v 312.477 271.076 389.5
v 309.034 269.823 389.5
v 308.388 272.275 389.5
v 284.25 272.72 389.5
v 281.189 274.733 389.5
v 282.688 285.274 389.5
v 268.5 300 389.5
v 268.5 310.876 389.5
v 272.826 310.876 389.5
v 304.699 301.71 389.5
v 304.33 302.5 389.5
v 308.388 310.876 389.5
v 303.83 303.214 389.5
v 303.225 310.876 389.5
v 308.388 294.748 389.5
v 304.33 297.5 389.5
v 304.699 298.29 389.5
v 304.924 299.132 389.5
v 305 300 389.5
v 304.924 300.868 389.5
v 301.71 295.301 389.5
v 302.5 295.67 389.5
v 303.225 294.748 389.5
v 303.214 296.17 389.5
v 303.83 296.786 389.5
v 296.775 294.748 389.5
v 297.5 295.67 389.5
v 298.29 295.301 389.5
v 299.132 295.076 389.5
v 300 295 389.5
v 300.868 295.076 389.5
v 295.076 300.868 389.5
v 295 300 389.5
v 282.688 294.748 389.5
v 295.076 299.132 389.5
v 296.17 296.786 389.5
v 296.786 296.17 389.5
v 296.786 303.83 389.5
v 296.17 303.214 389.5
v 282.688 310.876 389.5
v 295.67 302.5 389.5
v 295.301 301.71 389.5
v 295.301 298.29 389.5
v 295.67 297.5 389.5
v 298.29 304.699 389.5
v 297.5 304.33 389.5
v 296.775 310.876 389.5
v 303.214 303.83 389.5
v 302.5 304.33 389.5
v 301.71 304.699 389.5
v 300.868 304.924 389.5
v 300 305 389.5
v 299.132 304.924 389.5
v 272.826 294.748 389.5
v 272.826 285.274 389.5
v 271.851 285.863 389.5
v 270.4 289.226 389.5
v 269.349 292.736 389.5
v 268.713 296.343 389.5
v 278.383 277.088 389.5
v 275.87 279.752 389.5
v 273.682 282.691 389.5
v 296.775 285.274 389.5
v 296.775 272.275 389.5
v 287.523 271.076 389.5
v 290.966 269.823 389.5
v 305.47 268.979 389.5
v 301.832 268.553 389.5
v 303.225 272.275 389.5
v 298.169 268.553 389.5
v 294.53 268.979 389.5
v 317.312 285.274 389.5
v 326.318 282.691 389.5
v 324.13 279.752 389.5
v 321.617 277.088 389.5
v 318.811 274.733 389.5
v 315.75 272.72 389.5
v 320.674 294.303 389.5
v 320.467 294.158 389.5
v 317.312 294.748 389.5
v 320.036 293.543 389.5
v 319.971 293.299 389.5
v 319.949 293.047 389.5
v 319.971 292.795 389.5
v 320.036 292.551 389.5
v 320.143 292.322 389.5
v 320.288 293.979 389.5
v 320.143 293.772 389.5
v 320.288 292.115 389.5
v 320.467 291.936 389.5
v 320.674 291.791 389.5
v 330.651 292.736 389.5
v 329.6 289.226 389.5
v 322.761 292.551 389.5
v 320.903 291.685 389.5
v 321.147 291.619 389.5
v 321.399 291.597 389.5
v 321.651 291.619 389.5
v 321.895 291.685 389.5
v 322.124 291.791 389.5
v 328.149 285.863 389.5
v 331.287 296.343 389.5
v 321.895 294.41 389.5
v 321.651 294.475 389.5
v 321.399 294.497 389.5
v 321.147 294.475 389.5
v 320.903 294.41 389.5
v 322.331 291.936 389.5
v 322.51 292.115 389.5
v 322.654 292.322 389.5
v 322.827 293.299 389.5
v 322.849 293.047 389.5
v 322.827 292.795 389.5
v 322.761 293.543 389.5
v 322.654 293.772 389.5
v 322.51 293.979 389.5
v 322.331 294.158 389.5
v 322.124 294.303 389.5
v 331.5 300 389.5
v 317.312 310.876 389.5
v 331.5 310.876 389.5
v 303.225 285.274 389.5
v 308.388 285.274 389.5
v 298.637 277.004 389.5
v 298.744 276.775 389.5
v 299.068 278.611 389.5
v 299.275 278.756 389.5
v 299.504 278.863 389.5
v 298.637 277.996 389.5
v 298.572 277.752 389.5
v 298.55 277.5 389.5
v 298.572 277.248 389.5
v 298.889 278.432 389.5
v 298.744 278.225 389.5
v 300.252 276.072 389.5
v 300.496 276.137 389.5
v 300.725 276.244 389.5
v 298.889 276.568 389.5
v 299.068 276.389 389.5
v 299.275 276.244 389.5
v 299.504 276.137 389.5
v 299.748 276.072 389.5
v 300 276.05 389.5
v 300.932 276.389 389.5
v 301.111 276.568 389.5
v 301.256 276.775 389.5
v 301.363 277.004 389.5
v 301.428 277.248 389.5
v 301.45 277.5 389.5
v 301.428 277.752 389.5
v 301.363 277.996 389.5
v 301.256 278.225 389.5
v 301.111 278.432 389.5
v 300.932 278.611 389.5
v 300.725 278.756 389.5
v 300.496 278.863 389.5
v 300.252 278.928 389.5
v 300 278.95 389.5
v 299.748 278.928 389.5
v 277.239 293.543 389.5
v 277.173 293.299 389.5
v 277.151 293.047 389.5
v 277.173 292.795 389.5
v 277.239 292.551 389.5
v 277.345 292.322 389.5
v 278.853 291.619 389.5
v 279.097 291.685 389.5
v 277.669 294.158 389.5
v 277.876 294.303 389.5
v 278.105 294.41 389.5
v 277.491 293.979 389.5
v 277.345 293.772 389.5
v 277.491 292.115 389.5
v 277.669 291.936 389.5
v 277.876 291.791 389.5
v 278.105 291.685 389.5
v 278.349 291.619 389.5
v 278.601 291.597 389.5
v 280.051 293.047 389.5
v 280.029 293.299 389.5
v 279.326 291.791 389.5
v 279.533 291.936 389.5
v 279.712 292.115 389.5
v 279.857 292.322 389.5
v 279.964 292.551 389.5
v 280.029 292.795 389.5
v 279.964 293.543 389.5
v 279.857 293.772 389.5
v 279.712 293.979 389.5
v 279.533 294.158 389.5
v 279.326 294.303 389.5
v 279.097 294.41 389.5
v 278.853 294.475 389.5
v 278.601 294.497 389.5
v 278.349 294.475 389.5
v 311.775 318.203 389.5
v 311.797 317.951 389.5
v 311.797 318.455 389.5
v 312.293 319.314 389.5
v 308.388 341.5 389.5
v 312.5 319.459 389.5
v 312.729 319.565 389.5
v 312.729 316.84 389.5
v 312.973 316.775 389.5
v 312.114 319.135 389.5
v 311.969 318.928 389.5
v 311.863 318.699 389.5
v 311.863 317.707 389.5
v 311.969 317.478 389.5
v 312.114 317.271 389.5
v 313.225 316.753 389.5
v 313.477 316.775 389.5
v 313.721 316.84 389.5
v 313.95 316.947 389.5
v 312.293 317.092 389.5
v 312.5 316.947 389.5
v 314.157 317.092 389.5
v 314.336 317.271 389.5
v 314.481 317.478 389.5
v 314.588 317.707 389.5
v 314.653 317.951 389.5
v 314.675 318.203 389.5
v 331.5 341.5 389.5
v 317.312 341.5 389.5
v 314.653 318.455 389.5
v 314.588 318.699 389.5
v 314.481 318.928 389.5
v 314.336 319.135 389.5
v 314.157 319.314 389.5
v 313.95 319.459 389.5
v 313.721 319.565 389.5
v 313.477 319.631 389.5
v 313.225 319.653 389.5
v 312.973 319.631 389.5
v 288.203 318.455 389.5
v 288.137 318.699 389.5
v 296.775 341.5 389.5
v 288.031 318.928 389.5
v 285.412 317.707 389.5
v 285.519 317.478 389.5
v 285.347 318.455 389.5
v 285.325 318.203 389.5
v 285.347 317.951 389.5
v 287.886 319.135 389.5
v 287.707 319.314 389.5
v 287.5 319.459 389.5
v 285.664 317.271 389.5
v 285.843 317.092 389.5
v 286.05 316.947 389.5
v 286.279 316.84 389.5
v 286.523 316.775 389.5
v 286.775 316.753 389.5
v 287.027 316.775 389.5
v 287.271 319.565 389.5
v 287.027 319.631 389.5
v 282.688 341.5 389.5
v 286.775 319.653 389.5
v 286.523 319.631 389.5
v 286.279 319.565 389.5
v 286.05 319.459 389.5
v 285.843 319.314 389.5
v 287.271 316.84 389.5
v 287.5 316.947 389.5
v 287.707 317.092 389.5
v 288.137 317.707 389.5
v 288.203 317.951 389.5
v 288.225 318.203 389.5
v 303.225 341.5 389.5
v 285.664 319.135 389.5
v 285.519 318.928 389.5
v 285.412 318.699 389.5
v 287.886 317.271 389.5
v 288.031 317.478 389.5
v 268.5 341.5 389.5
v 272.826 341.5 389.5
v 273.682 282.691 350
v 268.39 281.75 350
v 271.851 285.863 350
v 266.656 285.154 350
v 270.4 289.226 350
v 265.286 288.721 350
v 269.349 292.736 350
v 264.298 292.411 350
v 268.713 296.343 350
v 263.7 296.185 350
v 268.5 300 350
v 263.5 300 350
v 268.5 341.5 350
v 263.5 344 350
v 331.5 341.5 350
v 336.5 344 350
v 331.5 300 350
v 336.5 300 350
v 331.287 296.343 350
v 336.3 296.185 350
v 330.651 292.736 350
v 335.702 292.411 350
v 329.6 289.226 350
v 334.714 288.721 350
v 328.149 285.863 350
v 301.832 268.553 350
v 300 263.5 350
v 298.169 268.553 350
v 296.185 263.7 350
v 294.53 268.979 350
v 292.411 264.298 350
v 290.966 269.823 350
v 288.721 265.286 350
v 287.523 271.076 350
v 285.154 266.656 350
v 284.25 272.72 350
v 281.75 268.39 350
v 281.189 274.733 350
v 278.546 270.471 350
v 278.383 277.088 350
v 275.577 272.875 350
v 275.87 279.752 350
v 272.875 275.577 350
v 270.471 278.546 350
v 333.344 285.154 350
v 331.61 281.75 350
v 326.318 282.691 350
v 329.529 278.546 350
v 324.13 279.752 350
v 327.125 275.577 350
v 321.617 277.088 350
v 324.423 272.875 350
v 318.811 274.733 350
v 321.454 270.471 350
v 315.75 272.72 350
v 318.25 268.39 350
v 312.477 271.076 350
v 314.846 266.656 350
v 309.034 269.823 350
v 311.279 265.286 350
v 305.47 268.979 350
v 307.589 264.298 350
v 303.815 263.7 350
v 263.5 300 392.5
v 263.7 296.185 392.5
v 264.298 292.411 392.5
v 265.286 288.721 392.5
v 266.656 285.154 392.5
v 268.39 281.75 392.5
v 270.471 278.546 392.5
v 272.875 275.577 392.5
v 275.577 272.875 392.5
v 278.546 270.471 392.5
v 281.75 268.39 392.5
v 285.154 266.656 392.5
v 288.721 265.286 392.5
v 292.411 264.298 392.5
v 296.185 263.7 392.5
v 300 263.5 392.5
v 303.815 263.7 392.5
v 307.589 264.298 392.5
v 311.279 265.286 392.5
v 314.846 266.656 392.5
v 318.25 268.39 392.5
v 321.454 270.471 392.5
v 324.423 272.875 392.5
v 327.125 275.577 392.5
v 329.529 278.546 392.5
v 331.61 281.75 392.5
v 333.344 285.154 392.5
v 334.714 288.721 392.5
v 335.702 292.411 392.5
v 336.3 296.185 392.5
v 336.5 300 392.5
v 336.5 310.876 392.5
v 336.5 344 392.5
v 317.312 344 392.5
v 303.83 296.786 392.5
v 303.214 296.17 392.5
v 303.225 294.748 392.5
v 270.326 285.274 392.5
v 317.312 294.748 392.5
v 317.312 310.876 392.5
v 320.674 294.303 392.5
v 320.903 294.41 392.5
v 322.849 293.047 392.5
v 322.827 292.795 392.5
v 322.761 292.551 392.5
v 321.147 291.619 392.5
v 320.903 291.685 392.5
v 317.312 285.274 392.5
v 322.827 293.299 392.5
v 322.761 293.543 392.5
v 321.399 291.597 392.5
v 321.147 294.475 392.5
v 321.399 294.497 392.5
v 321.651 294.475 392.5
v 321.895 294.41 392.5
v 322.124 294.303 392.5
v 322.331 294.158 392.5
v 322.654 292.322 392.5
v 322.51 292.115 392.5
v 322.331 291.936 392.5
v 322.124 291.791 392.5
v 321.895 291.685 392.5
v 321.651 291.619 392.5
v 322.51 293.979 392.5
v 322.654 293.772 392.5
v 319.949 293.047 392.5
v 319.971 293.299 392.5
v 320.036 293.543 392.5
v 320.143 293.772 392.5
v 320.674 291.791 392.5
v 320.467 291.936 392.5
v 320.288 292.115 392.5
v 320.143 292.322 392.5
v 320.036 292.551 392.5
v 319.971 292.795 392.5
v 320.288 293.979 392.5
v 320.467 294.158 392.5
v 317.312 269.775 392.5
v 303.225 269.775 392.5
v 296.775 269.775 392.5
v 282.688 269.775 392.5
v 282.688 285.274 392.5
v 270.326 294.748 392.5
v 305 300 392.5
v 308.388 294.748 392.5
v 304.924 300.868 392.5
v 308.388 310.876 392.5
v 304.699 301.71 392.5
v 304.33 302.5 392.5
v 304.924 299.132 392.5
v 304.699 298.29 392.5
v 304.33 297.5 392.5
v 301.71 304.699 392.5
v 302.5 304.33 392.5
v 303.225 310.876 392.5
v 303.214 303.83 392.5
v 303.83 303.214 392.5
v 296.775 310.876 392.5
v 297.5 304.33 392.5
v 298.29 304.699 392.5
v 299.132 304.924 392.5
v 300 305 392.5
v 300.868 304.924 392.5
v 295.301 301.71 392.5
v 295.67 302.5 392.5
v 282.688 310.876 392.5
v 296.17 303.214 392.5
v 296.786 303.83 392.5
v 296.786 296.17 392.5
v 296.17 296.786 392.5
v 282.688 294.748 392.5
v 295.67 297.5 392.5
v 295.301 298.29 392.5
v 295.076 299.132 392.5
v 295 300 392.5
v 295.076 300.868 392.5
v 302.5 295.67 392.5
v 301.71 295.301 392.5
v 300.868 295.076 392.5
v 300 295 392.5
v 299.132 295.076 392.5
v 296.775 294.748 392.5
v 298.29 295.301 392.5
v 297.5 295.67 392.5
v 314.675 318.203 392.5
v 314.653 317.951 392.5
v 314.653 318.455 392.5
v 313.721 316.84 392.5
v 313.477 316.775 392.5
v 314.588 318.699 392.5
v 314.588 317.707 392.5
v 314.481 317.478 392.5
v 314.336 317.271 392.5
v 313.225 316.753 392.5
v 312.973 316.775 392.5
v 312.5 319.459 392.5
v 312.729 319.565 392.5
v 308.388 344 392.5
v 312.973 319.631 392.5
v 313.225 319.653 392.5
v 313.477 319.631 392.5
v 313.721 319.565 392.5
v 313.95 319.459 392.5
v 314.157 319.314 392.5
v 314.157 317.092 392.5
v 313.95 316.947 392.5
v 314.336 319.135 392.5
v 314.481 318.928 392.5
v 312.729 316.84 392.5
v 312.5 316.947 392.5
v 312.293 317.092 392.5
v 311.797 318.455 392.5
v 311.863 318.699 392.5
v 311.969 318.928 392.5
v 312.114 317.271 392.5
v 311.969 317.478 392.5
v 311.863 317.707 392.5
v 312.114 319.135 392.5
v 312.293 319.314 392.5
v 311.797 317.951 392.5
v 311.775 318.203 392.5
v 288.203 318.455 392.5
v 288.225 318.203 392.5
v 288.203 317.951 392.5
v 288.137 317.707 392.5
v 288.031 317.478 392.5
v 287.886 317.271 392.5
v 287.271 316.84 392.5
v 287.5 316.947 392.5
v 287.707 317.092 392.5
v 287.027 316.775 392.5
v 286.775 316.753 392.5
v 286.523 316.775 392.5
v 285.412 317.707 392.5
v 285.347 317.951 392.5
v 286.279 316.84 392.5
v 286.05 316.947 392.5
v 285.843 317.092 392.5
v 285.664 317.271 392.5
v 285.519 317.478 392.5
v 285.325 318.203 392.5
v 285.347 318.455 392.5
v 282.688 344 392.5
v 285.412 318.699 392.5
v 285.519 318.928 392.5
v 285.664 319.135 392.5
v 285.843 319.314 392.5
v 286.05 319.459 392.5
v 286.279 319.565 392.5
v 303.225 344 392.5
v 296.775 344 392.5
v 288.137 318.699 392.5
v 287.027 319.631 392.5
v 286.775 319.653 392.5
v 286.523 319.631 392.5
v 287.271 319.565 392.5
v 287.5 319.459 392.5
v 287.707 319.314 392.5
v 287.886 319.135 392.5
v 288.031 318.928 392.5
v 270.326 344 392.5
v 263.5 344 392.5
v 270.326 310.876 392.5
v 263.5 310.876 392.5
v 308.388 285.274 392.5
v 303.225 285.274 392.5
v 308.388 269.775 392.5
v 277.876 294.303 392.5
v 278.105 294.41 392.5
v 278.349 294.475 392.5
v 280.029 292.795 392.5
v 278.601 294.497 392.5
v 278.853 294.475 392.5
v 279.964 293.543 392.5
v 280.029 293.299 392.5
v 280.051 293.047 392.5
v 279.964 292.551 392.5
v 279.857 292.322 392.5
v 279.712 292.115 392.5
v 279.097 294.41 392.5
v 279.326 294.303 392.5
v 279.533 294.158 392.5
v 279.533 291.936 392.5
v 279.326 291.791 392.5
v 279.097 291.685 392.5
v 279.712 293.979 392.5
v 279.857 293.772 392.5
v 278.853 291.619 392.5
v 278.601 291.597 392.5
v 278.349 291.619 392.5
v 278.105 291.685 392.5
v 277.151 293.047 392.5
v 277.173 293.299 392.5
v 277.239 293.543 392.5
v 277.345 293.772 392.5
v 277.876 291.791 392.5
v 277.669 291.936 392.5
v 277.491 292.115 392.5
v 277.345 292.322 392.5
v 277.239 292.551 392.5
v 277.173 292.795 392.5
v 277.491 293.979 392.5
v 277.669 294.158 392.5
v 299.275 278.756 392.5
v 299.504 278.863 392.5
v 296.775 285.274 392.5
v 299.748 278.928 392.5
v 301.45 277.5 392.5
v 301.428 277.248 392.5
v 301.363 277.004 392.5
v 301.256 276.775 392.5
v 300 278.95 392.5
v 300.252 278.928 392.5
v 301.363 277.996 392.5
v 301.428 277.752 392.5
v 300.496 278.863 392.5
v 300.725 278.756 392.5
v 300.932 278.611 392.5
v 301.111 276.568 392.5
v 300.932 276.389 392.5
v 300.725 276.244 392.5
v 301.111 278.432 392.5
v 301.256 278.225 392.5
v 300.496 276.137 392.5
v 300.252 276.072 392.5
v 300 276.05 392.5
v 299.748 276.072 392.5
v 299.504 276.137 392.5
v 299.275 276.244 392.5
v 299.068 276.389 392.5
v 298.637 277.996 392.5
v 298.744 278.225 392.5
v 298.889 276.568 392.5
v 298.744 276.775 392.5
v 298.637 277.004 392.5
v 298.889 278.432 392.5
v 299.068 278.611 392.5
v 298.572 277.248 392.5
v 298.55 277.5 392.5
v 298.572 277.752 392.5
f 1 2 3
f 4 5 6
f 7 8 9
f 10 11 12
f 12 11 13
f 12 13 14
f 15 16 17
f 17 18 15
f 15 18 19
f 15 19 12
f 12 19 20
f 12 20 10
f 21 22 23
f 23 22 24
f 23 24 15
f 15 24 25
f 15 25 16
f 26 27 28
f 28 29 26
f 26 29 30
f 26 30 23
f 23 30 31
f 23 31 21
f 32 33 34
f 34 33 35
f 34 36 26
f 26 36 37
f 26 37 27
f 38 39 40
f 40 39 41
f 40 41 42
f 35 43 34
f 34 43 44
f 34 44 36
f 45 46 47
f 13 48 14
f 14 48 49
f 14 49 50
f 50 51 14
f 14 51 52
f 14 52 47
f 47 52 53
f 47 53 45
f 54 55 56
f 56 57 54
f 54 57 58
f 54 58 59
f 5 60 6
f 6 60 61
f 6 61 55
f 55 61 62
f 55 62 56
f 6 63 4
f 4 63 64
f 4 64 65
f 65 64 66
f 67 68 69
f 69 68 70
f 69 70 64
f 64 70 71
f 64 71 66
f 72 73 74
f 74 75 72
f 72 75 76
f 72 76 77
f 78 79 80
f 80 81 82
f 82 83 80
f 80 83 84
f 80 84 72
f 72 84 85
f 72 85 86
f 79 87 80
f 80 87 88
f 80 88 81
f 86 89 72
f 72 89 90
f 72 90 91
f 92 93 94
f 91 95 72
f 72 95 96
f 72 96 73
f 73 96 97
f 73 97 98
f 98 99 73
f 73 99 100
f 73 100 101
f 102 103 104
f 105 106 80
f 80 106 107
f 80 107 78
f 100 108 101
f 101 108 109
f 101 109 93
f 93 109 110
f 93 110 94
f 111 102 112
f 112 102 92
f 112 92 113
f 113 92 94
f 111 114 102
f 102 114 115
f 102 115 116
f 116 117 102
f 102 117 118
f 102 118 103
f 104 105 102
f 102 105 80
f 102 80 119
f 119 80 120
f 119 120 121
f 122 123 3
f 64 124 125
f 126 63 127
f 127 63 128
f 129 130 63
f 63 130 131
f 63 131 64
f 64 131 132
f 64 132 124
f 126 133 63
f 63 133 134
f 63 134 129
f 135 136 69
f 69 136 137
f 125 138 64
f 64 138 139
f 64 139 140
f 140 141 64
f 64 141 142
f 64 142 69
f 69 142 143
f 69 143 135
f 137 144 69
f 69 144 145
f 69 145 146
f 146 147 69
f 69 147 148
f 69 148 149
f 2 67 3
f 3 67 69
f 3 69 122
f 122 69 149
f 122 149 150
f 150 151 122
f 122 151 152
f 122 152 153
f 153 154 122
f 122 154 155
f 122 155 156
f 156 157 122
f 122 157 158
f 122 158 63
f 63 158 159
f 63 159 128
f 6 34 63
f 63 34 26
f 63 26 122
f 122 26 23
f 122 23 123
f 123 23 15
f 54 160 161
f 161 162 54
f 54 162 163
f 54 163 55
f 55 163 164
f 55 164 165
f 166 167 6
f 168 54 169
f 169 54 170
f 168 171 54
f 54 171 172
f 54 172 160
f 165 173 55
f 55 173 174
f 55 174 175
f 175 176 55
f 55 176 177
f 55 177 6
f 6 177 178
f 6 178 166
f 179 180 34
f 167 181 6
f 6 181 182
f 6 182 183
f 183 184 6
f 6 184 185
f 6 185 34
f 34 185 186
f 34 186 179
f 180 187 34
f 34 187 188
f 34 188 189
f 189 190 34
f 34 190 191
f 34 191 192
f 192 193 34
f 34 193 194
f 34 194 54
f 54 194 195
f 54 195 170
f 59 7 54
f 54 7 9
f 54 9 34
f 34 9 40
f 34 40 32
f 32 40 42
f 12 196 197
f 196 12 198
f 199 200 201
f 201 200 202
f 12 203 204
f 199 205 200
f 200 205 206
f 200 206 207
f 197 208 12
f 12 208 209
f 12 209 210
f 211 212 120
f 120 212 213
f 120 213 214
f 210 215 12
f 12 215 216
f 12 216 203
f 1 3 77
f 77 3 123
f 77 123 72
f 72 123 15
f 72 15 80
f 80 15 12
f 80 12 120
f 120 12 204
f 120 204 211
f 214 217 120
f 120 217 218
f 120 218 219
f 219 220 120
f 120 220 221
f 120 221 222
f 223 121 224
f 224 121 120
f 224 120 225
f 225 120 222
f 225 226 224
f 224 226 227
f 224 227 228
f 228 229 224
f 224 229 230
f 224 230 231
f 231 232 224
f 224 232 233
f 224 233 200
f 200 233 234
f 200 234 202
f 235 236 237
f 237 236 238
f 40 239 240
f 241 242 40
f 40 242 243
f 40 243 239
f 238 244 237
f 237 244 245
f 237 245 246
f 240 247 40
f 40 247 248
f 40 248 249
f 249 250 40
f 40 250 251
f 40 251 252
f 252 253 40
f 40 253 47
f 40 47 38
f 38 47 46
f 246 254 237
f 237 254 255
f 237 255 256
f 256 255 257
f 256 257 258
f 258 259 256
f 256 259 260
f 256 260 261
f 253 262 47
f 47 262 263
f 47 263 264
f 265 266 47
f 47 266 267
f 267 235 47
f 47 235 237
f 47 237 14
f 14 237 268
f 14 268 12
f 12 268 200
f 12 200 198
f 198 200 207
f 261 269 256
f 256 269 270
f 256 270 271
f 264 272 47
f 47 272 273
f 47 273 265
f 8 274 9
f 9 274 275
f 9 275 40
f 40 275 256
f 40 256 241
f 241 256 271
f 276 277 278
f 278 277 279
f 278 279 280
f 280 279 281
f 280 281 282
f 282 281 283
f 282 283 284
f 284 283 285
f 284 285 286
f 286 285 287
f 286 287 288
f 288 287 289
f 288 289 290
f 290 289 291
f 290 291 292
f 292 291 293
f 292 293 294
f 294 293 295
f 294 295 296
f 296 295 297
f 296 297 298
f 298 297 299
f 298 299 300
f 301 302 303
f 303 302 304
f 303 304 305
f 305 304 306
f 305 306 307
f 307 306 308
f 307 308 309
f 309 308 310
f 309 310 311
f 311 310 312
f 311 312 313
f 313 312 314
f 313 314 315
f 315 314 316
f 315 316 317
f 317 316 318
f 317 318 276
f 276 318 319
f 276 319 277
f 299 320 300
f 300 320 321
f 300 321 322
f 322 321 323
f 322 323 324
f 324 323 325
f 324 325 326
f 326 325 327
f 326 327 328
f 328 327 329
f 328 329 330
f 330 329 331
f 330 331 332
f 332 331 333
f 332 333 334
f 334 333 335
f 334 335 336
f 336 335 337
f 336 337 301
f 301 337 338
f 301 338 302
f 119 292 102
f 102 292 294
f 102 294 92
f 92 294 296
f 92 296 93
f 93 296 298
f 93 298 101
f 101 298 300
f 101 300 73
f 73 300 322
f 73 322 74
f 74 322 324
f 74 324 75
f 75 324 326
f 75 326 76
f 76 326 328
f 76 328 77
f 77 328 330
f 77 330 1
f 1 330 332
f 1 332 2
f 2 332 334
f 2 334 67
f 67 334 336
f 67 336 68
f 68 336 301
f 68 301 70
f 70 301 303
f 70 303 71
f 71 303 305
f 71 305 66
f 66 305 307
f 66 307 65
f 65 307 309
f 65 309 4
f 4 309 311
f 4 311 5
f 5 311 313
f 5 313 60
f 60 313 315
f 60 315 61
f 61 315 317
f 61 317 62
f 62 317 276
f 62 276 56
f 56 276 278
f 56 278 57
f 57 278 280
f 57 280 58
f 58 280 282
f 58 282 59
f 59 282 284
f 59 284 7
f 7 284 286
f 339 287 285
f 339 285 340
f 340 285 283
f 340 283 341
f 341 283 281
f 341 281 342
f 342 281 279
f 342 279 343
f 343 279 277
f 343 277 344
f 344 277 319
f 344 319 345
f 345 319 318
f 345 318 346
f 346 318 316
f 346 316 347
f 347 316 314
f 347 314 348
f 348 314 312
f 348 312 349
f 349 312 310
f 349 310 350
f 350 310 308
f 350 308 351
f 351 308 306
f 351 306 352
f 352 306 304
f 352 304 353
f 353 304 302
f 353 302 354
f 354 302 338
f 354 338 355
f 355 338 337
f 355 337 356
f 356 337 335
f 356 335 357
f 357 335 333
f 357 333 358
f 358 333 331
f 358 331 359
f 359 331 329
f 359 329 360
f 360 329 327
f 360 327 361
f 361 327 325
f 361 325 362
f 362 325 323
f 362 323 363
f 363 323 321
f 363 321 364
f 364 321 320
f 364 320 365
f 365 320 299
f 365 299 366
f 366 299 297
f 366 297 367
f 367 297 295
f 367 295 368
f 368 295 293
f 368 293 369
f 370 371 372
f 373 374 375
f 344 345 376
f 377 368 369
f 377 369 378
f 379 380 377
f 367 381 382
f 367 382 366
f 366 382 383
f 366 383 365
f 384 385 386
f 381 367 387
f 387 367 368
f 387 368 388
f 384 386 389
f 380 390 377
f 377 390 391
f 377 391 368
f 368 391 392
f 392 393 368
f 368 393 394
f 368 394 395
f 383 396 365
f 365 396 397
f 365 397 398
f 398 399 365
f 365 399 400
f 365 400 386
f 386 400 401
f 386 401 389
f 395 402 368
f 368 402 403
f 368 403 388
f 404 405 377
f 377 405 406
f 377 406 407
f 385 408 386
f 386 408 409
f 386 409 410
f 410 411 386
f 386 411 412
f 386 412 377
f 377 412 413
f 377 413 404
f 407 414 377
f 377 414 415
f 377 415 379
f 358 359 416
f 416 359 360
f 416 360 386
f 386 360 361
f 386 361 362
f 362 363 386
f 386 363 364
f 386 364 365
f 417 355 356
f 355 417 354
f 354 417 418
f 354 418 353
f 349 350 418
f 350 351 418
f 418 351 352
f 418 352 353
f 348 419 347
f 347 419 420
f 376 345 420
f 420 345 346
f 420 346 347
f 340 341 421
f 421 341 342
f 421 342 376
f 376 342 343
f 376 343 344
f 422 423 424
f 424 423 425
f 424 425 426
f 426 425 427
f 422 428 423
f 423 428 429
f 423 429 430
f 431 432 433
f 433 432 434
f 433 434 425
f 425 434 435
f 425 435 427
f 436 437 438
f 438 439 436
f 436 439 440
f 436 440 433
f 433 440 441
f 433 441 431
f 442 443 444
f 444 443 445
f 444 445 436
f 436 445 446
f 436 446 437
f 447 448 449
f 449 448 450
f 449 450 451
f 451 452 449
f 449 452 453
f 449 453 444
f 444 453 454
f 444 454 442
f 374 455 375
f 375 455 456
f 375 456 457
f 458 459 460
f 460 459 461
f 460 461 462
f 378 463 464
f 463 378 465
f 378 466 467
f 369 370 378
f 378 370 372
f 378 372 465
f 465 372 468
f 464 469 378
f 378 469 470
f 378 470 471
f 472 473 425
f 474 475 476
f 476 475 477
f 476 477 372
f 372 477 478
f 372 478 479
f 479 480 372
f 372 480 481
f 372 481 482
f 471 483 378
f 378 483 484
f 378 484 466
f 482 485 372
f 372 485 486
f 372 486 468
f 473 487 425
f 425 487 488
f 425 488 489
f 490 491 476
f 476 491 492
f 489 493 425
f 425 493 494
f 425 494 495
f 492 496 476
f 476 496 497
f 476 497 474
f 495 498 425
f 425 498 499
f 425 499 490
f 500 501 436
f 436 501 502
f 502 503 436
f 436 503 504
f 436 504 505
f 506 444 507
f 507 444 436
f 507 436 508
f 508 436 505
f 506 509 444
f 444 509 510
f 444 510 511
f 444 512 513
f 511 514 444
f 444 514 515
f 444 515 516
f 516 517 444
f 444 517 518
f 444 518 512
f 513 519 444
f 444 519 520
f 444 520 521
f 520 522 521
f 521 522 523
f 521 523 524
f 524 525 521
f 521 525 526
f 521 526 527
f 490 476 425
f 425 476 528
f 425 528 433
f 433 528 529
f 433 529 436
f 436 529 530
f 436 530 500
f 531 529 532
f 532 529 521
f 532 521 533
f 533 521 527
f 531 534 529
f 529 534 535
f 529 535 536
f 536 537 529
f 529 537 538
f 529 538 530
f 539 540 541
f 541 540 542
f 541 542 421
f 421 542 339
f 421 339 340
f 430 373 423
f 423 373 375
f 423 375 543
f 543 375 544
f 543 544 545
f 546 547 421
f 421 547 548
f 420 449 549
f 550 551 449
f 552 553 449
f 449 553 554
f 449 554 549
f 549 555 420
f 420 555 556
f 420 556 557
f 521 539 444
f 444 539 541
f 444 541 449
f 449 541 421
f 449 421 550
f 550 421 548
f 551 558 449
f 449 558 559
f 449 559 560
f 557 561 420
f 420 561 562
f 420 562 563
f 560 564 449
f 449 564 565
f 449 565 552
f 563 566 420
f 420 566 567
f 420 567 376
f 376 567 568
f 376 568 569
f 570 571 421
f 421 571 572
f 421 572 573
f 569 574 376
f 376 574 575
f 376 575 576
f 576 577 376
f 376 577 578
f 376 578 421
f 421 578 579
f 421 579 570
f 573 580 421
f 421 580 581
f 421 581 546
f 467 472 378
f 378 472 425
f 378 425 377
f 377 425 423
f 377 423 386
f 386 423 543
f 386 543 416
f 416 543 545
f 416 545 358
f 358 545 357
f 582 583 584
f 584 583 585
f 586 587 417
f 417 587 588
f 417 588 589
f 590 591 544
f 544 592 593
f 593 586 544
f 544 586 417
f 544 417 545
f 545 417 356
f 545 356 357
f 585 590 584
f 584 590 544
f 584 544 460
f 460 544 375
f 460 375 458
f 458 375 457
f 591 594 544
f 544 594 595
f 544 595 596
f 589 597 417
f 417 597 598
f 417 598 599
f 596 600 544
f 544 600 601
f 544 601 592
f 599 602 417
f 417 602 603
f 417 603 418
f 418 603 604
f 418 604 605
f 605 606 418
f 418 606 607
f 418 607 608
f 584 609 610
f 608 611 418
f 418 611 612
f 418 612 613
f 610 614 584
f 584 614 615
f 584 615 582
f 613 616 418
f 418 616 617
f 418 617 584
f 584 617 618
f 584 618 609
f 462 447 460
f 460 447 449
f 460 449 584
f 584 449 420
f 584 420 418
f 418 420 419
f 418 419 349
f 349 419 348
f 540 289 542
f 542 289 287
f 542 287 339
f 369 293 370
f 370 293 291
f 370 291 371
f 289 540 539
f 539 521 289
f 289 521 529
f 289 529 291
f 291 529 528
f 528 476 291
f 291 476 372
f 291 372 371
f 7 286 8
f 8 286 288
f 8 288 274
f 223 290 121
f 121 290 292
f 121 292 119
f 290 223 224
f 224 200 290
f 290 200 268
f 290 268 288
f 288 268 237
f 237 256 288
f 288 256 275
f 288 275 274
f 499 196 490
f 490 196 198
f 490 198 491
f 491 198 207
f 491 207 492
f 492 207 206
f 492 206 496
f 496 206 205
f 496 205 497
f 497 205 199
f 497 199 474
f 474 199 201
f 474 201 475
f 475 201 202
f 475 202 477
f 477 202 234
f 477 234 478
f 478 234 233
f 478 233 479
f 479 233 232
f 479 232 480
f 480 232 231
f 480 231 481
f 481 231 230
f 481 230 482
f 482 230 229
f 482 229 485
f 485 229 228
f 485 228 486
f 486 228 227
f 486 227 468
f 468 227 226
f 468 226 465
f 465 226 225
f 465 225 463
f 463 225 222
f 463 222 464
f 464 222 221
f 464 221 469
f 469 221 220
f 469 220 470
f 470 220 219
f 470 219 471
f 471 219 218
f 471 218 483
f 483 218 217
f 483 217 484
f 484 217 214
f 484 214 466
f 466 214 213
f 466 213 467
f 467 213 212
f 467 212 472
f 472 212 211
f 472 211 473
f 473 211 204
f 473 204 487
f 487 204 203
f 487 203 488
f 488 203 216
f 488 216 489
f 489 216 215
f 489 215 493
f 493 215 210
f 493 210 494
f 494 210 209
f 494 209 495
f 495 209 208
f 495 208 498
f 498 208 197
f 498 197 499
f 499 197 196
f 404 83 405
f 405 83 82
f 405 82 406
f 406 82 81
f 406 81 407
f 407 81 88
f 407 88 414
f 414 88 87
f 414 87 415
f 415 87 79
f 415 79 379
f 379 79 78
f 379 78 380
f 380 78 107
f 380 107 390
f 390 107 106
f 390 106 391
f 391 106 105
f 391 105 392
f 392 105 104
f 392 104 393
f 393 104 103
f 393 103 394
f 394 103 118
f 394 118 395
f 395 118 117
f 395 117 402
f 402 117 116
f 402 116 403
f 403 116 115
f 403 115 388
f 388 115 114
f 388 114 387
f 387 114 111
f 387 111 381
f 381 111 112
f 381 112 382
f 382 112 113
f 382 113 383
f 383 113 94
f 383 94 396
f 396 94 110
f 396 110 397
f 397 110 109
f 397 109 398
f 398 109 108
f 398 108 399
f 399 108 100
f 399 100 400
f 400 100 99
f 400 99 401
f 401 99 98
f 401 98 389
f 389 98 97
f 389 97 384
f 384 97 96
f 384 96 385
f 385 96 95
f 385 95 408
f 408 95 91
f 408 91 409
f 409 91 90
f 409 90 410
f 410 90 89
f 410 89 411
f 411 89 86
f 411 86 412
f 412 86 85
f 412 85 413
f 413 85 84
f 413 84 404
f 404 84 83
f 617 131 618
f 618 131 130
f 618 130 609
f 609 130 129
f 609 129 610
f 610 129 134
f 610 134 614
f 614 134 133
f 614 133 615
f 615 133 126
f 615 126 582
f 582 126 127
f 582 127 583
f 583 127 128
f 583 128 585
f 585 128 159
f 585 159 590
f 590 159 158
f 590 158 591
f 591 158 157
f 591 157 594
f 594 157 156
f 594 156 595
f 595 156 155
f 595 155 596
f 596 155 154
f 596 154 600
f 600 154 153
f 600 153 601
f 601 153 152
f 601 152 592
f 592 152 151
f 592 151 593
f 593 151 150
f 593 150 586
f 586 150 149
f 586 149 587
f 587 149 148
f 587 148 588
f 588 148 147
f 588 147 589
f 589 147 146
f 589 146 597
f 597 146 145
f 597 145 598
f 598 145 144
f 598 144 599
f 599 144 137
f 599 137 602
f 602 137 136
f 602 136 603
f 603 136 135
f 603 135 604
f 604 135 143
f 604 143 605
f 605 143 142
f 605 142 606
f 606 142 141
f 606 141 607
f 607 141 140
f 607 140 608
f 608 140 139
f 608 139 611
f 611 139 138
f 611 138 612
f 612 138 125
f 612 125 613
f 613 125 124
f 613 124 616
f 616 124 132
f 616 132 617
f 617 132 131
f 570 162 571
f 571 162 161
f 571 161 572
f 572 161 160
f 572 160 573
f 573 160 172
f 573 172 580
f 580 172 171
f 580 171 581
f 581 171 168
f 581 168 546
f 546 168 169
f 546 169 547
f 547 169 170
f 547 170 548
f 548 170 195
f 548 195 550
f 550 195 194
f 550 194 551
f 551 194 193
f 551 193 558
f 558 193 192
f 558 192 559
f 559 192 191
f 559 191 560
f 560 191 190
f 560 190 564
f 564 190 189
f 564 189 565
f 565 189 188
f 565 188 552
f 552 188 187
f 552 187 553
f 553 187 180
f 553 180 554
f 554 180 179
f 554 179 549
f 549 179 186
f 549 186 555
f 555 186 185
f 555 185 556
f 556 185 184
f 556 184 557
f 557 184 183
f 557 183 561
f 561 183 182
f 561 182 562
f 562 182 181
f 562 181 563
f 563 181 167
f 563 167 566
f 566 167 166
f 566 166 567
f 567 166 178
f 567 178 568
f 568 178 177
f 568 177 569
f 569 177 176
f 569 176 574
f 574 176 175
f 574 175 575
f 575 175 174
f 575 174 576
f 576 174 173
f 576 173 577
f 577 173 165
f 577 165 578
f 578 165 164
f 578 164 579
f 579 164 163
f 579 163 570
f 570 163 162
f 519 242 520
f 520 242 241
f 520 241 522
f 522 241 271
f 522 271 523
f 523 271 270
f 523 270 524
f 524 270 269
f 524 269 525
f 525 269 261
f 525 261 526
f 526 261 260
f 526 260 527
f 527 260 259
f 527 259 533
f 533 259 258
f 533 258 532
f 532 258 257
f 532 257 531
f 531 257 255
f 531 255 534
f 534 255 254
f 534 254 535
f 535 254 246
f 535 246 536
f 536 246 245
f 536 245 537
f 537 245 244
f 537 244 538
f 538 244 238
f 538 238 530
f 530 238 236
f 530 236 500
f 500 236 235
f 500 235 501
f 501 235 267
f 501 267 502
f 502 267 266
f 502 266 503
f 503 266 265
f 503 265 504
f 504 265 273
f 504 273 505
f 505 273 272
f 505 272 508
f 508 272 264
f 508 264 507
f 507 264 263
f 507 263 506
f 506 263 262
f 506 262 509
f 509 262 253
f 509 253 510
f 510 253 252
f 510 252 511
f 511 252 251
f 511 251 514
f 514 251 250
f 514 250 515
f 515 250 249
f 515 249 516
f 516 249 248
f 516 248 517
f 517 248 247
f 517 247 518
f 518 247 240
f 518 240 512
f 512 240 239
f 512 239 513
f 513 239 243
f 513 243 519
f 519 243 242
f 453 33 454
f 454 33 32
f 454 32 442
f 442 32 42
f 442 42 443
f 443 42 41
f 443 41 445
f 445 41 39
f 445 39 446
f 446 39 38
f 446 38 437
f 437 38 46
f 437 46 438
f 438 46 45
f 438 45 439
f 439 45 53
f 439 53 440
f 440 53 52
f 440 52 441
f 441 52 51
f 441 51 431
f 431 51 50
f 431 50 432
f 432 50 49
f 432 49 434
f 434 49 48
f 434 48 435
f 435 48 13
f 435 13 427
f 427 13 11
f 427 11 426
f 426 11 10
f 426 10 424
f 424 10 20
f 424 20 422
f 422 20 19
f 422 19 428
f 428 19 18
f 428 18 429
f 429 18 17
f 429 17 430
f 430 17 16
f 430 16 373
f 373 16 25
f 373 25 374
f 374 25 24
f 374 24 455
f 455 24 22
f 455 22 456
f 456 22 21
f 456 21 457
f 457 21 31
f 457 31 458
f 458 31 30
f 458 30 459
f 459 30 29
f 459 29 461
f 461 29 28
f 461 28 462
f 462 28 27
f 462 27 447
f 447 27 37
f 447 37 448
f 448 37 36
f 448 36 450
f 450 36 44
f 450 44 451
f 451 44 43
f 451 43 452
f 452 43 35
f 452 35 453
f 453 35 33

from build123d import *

# Parameters (mm, degrees)
SKETCH1_R           = 36.5
BOSS_EXTRUDE1_DEPTH = 42.5
SKETCH2_W           = 73
SKETCH2_H           = 44
BOSS_EXTRUDE2_DEPTH = 42.5
SKETCH3_R           = 31.5
CUT_EXTRUDE1_DEPTH  = 39.5
SKETCH4_W           = 63
SKETCH4_H           = 41.5
CUT_EXTRUDE2_DEPTH  = 39.5
SKETCH5_R           = 5
SKETCH5_R_2         = 1.45
CUT_EXTRUDE3_DEPTH  = 3


with BuildPart() as part:
    # Sketch1 → Boss-Extrude1 (new body)
    with BuildSketch(Plane.XY.offset(350)):
        with Locations((300, 300)):
            Circle(SKETCH1_R)
    extrude(amount=BOSS_EXTRUDE1_DEPTH)

    # Sketch2 → Boss-Extrude2 (add)
    with BuildSketch(Plane.XY.offset(350)):
        with Locations((300, 322)):
            Rectangle(SKETCH2_W, SKETCH2_H)
    extrude(amount=BOSS_EXTRUDE2_DEPTH)

    # Sketch3 → Cut-Extrude1 (cut)
    with BuildSketch(Plane.XY.offset(350)):
        with Locations((300, 300)):
            Circle(SKETCH3_R)
    extrude(amount=CUT_EXTRUDE1_DEPTH, mode=Mode.SUBTRACT)

    # Sketch4 → Cut-Extrude2 (cut)
    with BuildSketch(Plane.XY.offset(350)):
        with Locations((300, 320.75)):
            Rectangle(SKETCH4_W, SKETCH4_H)
    extrude(amount=CUT_EXTRUDE2_DEPTH, mode=Mode.SUBTRACT)

    # Sketch5 → Cut-Extrude3 (cut)
    with BuildSketch(Plane.XY.offset(389.5)):
        with Locations((300, 300)):
            Circle(SKETCH5_R)
        with Locations((286.774831823, 318.202882373)):
            Circle(SKETCH5_R_2)
        with Locations((278.601228383, 293.047117627)):
            Circle(SKETCH5_R_2)
        with Locations((300, 277.5)):
            Circle(SKETCH5_R_2)
        with Locations((321.398771617, 293.047117627)):
            Circle(SKETCH5_R_2)
        with Locations((313.225168177, 318.202882373)):
            Circle(SKETCH5_R_2)
    extrude(amount=CUT_EXTRUDE3_DEPTH, mode=Mode.SUBTRACT)


solid = part.part
